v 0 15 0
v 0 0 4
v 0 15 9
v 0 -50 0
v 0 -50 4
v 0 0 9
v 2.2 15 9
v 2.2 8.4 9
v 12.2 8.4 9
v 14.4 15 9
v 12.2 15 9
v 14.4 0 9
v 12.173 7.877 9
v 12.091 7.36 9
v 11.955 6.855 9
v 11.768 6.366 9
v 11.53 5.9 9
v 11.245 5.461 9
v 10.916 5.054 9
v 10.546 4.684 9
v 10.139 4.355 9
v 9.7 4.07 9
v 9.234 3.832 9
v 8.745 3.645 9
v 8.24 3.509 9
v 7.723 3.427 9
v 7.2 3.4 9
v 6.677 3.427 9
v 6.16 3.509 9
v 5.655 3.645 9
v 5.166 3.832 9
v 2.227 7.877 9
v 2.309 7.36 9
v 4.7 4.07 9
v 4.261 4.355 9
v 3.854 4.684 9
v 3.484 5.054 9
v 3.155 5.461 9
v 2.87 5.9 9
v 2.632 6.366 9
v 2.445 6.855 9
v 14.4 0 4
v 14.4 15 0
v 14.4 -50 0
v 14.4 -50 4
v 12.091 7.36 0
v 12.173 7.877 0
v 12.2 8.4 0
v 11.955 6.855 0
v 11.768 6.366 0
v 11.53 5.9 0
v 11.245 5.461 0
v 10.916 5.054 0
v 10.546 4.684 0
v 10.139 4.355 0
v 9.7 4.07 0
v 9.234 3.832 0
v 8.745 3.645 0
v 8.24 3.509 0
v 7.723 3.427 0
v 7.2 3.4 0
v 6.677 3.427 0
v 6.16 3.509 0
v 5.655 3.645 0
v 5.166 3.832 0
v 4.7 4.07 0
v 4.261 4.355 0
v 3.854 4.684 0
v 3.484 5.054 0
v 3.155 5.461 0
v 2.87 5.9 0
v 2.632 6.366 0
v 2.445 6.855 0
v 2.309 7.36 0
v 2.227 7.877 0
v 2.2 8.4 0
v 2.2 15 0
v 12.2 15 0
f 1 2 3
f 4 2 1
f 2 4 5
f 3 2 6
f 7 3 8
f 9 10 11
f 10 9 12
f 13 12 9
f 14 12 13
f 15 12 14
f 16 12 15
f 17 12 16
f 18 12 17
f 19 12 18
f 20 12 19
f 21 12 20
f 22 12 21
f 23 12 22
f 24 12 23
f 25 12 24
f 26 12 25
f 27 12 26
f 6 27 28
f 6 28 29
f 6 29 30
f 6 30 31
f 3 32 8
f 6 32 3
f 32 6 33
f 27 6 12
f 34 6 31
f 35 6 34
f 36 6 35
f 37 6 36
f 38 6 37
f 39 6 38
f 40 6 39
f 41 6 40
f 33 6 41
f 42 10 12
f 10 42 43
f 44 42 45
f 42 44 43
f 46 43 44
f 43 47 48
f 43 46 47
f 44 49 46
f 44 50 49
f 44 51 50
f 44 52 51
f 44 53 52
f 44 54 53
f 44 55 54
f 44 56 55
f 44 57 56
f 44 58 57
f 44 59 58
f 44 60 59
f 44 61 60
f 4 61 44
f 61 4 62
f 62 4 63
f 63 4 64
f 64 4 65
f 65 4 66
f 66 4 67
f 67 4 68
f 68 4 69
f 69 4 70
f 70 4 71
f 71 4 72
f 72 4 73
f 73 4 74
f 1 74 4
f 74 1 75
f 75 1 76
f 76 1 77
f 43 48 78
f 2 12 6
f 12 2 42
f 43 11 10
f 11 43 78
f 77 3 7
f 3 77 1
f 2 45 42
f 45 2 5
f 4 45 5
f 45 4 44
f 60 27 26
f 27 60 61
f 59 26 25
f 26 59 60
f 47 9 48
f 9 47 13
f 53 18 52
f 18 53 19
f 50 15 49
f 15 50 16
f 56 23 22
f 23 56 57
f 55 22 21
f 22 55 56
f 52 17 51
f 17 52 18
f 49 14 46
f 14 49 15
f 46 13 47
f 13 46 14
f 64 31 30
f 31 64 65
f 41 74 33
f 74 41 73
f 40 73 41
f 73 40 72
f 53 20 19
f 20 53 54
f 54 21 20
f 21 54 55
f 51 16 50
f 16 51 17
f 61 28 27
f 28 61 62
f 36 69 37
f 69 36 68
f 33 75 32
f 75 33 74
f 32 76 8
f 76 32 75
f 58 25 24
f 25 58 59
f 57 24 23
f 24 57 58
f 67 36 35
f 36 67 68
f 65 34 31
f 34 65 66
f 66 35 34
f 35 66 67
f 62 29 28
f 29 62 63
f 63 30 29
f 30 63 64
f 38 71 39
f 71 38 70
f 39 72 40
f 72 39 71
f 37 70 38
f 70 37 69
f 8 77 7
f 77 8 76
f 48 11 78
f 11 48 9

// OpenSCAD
//tool for miniature bearings
$fn=60;

difference() {
    union(){
        cube( [14.4, 15, 9]);
        translate([0, -50, 0]) cube([14.4, 50, 4]);
    }
    translate([14.4/2, 8.4, -1]) cylinder(d=10, h=12);
    translate([14.4/2-10/2, 8.4, -1]) cube([10, 10, 12]);
}
